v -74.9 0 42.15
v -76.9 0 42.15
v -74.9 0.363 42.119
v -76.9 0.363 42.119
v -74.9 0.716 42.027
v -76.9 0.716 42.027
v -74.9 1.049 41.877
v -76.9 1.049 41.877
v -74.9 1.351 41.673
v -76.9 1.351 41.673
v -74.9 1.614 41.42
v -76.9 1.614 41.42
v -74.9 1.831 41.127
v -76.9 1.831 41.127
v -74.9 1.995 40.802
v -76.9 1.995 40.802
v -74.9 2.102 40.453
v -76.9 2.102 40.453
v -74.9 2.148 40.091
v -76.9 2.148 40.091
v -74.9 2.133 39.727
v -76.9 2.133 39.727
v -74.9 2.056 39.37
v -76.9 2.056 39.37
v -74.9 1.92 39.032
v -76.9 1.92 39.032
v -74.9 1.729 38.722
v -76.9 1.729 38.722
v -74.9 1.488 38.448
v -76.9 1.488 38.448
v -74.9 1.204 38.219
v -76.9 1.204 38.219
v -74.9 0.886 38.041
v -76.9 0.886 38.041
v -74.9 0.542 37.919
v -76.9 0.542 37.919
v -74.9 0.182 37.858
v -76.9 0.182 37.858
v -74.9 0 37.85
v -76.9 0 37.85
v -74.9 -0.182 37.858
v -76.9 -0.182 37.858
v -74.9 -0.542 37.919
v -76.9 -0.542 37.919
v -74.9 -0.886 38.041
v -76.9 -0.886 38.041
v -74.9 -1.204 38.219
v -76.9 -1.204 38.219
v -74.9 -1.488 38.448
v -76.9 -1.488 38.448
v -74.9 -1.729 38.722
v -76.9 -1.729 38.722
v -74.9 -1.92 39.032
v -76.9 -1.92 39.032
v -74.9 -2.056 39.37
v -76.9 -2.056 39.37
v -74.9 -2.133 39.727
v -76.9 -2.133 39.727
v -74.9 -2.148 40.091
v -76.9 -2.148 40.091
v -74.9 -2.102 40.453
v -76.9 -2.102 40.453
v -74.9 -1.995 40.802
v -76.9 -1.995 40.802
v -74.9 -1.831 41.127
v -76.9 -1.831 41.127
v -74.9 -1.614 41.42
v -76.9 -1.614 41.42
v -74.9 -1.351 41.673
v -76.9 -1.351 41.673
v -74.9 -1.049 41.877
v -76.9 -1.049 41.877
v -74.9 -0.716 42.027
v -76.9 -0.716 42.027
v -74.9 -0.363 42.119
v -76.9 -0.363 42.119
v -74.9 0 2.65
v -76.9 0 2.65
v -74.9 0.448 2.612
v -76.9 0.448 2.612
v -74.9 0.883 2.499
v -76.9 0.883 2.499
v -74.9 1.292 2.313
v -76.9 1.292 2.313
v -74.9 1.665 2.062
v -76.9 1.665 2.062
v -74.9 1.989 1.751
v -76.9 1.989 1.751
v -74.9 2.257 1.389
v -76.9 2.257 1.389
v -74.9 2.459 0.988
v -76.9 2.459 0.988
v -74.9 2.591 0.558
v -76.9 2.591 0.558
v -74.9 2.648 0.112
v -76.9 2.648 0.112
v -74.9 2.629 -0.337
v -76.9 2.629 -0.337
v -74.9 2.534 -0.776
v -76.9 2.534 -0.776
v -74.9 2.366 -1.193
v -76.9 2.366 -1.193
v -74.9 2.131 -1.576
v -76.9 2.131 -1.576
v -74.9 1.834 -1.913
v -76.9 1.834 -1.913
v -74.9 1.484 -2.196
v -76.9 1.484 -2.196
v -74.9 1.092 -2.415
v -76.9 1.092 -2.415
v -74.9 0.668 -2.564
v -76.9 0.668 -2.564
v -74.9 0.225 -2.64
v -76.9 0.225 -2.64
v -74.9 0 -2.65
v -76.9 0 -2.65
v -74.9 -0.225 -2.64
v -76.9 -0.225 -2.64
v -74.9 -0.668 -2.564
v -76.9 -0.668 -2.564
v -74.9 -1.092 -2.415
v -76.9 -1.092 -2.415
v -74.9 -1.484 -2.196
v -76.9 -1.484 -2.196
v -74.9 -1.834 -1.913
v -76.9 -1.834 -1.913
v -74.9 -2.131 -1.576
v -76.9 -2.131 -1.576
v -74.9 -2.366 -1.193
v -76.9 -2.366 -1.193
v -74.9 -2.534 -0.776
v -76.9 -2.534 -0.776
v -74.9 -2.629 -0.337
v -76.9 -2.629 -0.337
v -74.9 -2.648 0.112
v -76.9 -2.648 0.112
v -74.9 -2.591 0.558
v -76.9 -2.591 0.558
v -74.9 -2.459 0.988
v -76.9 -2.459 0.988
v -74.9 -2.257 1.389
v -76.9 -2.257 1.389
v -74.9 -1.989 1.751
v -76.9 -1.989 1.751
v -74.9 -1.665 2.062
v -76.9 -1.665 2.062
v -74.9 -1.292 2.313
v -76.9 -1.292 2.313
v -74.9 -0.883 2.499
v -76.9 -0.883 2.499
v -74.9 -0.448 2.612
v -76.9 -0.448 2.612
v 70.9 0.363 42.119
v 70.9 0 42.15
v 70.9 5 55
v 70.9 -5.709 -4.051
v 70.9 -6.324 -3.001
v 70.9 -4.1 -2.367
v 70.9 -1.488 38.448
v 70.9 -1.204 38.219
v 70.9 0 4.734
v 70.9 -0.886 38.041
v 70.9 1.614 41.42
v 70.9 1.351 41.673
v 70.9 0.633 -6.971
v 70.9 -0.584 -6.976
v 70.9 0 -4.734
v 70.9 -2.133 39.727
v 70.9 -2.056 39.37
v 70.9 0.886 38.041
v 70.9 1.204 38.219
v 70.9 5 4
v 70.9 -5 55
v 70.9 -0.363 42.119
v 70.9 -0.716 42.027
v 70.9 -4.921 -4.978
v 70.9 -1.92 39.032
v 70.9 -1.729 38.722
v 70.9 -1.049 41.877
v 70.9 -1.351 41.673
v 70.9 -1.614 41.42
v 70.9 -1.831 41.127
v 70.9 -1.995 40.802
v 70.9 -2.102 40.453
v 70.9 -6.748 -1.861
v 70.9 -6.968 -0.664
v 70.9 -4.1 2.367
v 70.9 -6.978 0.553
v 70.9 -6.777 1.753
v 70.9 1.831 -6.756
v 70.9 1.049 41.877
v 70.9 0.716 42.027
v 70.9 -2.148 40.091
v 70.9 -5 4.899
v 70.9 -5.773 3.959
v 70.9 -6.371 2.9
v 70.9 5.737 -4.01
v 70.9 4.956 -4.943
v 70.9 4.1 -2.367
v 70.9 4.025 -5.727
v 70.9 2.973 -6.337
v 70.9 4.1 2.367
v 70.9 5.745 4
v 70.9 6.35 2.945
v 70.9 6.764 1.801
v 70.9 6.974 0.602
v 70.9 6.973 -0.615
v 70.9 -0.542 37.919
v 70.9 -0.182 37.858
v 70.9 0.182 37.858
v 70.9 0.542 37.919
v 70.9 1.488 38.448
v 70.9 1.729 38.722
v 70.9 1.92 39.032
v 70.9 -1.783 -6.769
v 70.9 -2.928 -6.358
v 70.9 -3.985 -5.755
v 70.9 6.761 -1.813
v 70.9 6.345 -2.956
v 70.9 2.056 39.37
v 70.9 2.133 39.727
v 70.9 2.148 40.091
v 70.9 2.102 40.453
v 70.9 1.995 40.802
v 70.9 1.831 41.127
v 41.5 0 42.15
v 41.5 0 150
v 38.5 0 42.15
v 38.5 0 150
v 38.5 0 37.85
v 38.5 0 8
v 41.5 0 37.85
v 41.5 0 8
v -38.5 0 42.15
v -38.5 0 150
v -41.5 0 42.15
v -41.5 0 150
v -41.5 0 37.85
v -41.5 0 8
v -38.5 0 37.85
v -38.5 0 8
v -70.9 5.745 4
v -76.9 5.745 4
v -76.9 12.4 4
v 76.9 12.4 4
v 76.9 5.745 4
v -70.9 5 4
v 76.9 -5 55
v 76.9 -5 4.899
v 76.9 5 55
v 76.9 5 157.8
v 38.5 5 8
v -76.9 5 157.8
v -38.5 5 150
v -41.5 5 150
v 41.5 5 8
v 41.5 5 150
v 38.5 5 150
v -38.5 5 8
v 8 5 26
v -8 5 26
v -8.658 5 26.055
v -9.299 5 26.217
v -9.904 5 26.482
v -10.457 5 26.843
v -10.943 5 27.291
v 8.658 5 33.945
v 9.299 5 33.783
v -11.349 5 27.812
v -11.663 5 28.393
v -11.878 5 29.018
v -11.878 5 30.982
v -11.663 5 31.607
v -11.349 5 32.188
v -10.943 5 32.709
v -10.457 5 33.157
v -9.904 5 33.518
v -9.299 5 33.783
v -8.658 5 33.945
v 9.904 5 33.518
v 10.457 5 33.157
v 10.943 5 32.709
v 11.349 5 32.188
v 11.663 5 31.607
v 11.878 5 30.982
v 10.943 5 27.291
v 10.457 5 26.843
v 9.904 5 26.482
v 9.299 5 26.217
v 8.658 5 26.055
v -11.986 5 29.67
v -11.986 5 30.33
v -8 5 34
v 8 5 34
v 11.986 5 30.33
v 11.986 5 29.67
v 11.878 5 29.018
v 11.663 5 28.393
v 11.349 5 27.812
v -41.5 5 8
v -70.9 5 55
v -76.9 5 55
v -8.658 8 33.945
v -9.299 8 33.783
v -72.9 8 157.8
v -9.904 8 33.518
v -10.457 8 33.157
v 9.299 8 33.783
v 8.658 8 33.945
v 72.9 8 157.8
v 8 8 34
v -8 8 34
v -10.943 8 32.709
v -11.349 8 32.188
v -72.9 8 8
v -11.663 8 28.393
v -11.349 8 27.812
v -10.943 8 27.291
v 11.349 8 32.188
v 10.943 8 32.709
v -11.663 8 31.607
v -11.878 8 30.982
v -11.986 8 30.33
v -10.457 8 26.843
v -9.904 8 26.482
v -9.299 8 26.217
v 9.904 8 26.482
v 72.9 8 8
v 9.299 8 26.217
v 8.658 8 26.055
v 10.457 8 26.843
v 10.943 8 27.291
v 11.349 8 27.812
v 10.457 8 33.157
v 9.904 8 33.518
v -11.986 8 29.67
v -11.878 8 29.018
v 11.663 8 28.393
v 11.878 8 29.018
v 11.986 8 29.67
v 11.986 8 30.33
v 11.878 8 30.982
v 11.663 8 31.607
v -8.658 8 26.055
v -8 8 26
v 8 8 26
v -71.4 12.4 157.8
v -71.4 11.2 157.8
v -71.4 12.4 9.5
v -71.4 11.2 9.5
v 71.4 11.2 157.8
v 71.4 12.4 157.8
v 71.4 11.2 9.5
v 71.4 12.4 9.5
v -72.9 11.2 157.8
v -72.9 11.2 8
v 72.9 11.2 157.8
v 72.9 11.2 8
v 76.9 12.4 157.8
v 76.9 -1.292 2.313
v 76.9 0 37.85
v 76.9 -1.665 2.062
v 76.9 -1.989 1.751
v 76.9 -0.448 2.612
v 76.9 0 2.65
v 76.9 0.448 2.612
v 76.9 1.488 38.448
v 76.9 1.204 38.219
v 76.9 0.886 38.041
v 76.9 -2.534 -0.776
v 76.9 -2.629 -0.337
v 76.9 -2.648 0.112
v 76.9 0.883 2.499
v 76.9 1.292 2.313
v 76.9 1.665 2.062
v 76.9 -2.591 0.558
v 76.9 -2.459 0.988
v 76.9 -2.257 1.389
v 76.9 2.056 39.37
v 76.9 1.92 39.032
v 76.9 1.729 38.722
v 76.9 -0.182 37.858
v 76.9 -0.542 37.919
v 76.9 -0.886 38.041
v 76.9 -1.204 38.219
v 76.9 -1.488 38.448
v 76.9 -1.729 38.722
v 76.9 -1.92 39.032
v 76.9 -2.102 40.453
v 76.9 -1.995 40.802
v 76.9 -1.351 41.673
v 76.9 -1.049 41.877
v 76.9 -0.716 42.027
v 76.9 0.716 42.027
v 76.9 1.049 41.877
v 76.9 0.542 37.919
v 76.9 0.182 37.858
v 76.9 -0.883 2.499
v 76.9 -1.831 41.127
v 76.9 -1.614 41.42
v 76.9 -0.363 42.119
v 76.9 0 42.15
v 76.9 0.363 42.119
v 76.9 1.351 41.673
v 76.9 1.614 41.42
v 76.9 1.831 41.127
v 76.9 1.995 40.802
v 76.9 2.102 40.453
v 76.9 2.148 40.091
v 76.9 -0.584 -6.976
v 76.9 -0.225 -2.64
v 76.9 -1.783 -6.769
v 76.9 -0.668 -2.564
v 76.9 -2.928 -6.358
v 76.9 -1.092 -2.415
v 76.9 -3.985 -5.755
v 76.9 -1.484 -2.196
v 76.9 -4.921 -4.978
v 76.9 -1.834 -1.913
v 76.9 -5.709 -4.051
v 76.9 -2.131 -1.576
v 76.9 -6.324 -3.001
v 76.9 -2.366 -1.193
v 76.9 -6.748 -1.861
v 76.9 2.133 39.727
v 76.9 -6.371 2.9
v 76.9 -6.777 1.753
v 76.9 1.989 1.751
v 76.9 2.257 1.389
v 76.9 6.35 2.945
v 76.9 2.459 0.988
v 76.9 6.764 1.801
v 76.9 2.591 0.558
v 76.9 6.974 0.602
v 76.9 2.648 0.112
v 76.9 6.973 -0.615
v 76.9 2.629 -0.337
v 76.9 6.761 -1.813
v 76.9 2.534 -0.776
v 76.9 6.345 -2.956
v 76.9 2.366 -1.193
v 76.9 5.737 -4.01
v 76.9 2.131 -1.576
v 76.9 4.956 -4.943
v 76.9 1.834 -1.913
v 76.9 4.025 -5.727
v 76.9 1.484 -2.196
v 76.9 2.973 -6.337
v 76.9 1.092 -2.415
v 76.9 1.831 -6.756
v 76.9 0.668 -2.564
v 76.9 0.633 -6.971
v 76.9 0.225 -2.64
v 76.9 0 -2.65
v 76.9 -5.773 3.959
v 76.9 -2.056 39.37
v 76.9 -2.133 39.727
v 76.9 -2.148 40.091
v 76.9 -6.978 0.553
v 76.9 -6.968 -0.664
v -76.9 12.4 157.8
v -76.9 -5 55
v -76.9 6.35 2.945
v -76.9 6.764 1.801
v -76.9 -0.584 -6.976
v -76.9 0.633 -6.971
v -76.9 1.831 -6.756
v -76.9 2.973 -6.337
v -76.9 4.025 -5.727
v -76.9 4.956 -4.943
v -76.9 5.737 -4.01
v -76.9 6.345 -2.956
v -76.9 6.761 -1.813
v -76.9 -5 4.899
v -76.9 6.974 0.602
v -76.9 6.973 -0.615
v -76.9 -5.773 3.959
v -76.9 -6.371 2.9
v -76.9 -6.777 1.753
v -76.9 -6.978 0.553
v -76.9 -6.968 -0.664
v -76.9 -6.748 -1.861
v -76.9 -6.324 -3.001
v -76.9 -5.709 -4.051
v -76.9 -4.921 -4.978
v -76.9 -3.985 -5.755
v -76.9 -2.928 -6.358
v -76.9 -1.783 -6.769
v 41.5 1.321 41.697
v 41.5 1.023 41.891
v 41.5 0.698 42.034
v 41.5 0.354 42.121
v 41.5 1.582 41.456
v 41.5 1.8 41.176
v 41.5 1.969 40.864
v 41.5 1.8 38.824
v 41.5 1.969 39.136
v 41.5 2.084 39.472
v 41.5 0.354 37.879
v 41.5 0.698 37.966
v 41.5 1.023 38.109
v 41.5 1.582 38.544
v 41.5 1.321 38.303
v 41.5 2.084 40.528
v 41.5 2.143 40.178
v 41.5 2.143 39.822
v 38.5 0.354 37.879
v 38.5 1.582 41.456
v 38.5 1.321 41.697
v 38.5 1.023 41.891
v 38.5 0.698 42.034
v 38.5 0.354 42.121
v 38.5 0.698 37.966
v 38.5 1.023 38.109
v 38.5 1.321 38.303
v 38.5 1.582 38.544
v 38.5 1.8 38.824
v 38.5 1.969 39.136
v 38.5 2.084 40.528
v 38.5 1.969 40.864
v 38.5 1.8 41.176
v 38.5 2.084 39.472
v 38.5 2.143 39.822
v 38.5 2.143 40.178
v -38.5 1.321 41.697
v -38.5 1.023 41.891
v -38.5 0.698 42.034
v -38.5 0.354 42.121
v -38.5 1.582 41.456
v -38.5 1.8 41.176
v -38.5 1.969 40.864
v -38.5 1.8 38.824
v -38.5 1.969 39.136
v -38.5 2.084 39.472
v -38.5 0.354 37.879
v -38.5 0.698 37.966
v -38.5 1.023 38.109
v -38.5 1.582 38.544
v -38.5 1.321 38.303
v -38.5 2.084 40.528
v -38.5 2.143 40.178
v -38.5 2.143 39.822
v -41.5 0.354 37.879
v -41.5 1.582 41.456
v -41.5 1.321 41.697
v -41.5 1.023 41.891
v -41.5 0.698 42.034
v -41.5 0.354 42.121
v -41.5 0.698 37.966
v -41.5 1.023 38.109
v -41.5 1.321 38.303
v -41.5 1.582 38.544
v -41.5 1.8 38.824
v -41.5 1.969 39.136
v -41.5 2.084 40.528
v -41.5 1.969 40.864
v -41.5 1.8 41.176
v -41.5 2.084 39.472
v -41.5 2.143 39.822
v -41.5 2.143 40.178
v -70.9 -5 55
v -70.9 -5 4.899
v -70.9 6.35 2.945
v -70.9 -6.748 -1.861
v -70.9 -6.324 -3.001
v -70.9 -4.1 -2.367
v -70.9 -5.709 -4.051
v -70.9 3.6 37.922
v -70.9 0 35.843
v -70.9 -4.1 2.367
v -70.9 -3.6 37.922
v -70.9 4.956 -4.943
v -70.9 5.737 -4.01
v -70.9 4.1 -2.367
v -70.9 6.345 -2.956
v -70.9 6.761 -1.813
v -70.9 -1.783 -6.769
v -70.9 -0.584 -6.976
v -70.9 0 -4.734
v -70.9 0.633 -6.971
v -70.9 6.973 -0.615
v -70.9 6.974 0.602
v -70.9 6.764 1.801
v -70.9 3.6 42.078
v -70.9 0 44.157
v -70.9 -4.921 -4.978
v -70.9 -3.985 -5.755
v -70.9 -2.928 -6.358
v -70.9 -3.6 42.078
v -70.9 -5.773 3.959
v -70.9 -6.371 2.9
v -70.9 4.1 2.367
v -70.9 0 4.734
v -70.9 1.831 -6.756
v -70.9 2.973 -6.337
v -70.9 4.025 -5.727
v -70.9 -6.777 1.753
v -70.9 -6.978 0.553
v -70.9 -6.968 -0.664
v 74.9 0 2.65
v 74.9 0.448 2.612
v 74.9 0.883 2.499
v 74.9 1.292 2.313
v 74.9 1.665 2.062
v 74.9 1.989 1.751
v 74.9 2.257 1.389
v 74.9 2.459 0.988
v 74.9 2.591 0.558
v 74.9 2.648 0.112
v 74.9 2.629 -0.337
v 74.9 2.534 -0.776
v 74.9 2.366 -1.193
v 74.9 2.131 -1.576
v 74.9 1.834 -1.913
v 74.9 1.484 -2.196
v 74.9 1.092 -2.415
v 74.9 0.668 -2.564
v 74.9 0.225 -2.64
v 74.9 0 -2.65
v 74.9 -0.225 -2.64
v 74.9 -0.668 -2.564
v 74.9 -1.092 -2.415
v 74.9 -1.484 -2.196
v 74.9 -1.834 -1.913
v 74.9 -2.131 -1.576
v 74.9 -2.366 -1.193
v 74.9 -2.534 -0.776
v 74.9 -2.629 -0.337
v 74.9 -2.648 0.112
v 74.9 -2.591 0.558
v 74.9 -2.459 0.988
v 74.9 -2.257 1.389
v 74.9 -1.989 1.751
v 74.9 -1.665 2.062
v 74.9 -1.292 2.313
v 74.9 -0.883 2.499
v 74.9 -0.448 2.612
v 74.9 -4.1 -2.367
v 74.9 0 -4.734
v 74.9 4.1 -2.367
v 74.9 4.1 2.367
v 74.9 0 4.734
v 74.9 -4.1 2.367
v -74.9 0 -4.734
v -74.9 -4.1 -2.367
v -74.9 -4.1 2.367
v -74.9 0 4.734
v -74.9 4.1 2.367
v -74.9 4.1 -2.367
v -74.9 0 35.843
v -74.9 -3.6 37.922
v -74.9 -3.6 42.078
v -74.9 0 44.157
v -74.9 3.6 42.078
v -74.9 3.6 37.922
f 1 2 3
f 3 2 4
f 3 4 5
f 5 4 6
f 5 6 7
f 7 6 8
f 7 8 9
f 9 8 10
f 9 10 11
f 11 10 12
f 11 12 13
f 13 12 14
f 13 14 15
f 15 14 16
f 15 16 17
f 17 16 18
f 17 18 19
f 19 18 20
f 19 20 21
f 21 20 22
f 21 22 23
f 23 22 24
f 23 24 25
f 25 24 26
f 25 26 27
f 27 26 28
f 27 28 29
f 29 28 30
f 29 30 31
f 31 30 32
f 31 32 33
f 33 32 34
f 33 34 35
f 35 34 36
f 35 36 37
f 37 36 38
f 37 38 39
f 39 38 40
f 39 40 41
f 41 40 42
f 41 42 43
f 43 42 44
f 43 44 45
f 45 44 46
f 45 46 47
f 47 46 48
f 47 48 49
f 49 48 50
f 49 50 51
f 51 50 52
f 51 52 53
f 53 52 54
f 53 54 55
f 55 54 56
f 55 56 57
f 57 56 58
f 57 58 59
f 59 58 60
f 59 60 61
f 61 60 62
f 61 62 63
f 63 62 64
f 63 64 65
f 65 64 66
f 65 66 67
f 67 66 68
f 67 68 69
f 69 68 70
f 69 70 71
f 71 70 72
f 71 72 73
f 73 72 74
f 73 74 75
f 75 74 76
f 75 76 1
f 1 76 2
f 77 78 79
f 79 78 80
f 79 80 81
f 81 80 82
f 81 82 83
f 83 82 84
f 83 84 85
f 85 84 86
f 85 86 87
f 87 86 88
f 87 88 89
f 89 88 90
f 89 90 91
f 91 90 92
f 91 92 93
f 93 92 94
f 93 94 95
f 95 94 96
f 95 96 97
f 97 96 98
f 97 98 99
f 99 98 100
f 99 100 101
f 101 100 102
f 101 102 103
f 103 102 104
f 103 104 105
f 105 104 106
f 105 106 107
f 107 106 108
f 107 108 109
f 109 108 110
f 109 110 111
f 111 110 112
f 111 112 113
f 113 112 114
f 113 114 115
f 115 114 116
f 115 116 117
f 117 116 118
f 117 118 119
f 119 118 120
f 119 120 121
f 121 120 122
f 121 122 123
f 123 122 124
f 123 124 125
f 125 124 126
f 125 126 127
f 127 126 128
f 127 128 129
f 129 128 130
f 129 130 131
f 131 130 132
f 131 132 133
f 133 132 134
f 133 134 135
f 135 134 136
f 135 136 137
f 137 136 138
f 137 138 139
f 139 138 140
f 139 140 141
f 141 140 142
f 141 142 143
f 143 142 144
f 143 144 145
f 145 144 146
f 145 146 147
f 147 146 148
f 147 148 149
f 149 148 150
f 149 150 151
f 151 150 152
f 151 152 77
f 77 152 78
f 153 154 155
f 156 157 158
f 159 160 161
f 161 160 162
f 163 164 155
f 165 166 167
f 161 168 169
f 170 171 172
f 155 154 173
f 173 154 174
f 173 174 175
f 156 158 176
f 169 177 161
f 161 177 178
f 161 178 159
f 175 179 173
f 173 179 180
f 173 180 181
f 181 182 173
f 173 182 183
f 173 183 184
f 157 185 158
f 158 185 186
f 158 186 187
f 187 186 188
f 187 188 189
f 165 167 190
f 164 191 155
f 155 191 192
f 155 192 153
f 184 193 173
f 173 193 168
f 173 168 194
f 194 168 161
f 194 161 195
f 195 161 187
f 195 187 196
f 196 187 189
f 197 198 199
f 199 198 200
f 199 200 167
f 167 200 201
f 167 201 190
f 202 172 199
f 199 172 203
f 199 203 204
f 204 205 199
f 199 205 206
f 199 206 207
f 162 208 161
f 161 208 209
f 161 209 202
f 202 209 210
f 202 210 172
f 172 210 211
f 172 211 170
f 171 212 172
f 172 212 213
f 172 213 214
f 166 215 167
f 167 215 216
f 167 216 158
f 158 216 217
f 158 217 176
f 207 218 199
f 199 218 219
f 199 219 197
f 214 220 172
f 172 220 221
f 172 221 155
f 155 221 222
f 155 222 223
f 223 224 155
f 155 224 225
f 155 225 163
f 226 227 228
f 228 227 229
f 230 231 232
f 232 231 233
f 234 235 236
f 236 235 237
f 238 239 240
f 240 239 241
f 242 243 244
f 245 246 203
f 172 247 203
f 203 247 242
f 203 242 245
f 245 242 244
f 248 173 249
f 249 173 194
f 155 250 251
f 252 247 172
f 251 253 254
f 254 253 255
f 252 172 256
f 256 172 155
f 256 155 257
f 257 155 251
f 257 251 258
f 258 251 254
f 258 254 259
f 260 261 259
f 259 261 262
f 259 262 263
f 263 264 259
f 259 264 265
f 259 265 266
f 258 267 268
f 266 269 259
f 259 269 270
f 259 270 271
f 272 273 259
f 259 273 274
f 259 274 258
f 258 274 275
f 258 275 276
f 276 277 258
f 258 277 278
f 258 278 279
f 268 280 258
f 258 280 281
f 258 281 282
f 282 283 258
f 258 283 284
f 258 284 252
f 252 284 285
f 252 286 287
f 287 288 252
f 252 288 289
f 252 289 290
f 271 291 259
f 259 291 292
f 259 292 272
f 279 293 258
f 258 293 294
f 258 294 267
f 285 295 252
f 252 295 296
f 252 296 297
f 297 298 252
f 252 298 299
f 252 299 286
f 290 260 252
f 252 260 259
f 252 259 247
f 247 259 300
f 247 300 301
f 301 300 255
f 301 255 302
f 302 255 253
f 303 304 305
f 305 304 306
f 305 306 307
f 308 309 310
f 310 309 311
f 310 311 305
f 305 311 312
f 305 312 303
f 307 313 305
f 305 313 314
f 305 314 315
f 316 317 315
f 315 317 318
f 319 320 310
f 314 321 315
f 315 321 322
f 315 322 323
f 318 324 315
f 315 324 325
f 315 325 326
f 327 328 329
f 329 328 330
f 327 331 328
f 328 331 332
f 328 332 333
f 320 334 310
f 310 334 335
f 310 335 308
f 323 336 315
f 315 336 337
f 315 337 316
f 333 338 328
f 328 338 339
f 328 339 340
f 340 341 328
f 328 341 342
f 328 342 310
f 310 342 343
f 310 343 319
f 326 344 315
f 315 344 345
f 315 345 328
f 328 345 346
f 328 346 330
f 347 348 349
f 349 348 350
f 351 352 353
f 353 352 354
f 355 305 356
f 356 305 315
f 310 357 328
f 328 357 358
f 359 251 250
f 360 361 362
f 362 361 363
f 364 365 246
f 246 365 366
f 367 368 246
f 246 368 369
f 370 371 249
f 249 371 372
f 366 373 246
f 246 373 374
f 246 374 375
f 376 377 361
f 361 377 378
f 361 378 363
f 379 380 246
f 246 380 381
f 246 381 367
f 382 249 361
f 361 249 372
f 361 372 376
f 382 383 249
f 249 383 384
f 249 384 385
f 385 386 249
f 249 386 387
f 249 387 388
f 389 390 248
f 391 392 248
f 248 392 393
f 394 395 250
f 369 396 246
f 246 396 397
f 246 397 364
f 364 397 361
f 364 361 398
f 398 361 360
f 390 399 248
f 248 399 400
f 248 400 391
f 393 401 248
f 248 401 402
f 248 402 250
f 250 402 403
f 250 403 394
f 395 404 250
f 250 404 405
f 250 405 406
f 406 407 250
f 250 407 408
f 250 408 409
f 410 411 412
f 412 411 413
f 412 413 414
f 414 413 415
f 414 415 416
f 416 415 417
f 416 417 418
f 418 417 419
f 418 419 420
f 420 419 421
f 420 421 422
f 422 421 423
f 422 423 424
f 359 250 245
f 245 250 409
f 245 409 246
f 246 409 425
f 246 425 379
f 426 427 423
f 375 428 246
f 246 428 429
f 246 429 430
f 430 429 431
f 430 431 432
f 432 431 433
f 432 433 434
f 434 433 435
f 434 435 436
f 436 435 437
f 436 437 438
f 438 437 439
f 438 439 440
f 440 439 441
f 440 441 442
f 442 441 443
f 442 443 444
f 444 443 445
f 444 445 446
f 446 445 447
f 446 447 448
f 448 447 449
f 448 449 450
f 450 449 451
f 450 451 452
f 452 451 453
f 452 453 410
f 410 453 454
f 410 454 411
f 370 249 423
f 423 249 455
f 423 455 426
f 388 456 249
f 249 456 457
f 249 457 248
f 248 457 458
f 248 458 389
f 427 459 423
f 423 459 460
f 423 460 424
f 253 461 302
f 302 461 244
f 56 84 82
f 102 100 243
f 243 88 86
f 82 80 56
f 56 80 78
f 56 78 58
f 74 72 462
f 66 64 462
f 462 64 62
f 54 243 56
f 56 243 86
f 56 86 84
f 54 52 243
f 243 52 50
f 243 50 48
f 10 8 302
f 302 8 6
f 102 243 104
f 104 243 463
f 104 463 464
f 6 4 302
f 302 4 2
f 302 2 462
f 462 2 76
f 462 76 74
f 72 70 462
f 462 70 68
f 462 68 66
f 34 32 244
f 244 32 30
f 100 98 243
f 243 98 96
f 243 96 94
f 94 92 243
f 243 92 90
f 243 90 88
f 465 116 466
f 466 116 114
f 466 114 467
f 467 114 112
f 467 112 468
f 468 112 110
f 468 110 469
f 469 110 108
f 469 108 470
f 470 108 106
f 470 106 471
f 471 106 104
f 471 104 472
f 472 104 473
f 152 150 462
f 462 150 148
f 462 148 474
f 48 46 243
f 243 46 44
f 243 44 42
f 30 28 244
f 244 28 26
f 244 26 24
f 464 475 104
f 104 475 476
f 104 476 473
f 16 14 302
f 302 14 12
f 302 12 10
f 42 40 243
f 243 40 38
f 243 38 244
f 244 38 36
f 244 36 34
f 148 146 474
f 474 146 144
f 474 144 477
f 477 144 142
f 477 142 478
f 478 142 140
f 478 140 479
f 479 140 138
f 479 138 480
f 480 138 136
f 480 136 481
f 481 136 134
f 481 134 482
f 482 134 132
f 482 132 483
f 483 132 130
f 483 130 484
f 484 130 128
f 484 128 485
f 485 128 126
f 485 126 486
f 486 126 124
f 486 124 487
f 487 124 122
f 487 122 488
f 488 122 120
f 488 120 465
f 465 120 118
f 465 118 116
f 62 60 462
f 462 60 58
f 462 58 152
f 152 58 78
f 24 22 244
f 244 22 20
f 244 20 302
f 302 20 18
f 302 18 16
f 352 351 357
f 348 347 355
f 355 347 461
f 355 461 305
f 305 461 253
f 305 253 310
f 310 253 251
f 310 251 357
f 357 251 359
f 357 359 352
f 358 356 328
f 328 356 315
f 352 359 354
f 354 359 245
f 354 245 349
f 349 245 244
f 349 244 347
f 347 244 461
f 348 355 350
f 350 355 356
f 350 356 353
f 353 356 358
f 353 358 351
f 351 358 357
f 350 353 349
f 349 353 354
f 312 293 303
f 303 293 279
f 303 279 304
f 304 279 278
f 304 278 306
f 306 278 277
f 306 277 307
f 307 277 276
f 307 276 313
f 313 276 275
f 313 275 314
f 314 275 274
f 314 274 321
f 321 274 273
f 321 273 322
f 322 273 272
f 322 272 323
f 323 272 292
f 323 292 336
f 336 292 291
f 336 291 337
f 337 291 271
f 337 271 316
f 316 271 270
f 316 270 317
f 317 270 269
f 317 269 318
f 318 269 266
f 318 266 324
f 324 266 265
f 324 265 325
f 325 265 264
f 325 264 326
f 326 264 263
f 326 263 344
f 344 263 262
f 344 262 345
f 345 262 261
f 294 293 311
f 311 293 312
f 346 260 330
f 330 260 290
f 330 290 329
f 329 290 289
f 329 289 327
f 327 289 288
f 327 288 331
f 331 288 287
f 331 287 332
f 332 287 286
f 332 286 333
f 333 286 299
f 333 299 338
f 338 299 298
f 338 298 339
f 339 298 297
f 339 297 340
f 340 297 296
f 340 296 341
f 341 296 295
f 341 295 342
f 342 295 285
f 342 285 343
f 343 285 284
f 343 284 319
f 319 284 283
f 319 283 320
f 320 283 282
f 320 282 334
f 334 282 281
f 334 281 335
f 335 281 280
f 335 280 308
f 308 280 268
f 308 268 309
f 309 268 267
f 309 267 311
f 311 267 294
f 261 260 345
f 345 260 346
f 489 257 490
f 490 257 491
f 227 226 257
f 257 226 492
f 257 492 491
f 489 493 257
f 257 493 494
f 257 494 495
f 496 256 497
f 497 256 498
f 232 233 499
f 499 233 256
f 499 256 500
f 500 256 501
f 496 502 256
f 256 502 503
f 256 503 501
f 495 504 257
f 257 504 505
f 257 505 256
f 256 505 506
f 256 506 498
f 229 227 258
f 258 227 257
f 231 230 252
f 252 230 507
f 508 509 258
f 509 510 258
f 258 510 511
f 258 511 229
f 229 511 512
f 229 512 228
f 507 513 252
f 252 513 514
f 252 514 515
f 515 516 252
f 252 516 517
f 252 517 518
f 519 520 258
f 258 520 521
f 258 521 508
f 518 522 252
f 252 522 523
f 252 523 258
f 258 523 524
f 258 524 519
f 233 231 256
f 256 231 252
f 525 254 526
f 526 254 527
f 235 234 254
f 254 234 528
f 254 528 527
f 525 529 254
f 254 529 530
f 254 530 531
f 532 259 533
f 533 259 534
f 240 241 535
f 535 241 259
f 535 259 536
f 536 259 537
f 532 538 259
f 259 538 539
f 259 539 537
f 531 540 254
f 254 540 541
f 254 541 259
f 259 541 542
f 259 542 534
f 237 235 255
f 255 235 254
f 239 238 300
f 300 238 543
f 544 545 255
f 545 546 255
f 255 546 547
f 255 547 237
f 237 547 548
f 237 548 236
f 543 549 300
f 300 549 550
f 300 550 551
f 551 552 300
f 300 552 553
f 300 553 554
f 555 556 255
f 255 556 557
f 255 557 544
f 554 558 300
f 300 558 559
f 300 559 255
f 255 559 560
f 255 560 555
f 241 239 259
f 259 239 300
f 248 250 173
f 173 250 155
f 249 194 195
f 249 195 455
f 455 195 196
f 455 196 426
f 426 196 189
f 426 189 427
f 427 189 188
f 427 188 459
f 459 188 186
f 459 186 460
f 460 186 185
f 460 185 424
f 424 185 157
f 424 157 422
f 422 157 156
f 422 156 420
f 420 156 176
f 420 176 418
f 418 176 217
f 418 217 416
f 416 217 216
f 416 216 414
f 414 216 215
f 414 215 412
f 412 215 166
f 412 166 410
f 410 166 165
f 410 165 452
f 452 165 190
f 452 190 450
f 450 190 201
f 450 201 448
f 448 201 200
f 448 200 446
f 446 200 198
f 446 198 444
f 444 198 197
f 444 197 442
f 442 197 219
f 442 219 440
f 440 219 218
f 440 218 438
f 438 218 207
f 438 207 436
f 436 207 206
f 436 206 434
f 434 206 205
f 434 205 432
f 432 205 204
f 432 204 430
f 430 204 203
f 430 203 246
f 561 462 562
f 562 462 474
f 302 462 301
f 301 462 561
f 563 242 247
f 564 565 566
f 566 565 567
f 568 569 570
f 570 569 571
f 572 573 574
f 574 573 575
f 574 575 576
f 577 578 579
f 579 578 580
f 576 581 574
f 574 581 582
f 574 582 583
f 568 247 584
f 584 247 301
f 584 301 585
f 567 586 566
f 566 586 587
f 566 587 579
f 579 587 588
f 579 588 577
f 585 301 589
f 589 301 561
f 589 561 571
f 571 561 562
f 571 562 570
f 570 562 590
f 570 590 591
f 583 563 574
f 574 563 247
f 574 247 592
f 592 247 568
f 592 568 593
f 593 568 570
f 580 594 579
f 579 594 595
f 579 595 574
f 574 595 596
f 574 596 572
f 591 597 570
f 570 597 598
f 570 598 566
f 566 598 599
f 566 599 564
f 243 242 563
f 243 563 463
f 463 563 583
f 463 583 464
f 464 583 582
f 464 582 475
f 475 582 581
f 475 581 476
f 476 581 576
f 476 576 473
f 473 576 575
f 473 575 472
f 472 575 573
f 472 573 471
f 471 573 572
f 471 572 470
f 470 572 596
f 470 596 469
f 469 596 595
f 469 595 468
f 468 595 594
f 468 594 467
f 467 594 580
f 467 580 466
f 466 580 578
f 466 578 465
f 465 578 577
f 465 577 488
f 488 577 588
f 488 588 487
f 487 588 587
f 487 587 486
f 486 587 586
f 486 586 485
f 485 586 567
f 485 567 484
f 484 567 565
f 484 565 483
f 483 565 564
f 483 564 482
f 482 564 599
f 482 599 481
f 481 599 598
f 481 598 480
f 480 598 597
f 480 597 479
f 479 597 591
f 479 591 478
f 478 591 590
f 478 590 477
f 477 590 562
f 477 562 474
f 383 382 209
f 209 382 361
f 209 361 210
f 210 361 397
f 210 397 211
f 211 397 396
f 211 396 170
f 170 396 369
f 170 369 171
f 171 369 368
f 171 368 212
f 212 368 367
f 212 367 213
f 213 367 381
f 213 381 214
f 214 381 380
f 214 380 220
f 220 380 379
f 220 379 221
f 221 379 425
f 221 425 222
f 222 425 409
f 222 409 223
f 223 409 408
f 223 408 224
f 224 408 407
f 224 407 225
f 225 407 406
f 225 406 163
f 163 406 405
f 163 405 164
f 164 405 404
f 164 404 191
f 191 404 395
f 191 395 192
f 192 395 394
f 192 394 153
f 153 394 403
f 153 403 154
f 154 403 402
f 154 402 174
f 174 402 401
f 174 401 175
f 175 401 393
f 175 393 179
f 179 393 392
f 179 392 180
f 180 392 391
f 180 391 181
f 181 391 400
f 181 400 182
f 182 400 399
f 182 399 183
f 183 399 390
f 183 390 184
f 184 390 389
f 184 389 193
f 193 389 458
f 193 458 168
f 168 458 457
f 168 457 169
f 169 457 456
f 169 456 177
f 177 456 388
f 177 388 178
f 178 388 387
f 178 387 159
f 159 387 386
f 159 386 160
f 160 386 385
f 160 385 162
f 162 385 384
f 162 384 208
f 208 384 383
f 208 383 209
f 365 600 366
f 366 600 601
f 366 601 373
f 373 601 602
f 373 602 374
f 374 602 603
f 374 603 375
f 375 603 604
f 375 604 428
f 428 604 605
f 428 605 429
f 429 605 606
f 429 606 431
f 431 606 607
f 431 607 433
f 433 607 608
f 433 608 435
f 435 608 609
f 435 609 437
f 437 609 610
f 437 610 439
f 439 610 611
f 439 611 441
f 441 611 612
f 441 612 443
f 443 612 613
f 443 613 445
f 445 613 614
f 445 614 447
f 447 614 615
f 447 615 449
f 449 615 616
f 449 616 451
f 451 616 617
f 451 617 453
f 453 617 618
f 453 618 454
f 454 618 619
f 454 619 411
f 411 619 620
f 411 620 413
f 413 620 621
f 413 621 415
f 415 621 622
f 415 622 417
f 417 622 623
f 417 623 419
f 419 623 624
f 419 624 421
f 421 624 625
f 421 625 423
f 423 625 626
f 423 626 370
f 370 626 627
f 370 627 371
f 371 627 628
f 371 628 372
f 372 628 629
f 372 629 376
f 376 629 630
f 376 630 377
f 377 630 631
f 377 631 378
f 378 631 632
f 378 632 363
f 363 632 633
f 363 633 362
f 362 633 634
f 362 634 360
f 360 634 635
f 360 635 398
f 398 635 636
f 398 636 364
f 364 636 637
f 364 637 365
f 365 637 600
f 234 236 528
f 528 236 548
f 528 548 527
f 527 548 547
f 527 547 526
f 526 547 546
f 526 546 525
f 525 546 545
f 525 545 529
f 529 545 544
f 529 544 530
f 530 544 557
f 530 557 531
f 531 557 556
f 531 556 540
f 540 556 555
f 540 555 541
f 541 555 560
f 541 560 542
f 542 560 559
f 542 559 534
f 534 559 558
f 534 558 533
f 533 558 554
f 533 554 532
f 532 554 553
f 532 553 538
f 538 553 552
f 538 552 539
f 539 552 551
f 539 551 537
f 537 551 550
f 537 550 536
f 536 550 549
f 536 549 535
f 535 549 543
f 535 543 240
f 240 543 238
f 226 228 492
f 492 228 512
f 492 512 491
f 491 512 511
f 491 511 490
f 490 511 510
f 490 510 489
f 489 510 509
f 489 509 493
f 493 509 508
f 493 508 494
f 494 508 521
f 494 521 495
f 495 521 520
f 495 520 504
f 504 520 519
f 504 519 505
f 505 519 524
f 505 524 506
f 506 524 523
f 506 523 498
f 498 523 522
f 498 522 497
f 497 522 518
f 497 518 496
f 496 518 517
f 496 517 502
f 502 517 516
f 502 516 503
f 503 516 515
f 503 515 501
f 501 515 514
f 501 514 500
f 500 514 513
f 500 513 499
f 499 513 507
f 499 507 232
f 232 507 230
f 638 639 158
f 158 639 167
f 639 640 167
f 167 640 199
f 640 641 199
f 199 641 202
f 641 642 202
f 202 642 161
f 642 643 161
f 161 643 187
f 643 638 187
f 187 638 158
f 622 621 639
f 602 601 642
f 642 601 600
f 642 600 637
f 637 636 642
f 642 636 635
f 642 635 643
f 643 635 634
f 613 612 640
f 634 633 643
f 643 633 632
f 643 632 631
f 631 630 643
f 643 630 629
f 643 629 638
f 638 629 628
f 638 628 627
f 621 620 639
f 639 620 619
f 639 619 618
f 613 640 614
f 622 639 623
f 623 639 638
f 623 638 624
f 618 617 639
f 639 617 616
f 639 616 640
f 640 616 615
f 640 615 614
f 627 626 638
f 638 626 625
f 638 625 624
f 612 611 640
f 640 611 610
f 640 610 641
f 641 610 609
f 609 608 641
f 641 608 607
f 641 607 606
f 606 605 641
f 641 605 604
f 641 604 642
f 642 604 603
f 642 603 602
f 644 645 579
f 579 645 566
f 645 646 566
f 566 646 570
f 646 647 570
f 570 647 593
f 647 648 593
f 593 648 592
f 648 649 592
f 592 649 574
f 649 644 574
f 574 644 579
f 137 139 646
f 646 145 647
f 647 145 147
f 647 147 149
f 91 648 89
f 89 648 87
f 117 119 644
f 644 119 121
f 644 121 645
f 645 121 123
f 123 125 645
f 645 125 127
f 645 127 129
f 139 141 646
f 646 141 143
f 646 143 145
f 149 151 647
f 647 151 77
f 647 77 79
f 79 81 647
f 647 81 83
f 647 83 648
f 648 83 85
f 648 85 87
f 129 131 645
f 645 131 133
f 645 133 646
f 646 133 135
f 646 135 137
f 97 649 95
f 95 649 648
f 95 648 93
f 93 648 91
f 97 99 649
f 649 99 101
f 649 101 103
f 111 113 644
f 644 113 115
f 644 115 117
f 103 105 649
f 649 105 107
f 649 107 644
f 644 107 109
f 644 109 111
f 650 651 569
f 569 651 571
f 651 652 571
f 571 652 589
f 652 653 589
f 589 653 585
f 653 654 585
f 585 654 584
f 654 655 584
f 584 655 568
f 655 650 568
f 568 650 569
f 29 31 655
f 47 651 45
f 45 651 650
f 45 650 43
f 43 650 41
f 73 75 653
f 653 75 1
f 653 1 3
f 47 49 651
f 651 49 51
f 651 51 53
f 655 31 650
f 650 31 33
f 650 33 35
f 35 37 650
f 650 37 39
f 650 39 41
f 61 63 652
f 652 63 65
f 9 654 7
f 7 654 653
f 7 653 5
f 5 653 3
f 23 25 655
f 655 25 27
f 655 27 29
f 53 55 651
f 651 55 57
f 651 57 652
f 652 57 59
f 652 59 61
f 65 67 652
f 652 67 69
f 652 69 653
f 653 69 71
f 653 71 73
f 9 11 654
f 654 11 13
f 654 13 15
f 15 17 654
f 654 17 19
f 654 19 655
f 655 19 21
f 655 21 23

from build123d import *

# Parameters (mm, degrees)
CROQUIS_PLACA_W                      = 153.8
CROQUIS_PLACA_H                      = 153.8
PLACA_DEPTH                          = 3
CROQUIS_BORDE_IZQ_W                  = 4
CROQUIS_BORDE_IZQ_H                  = 153.8
BORDE_IZQ_DEPTH                      = 3.2
CROQUIS_BORDE_DER_W                  = 4
CROQUIS_BORDE_DER_H                  = 153.8
BORDE_DER_DEPTH                      = 3.2
CROQUIS_BORDE_TRAS_W                 = 145.8
CROQUIS_BORDE_TRAS_H                 = 4
BORDE_TRAS_DEPTH                     = 3.2
CROQUIS_CEJA_IZQ_W                   = 5.5
CROQUIS_CEJA_IZQ_H                   = 153.8
CEJA_IZQ_DEPTH                       = 1.2
CROQUIS_CEJA_DER_W                   = 5.5
CROQUIS_CEJA_DER_H                   = 153.8
CEJA_DER_DEPTH                       = 1.2
CROQUIS_CEJA_TRAS_W                  = 148.3
CROQUIS_CEJA_TRAS_H                  = 5.5
CEJA_TRAS_DEPTH                      = 1.2
PASO_CABLE_DEPTH                     = 176.977867927
PASO_CABLE_DEPTH_BACK                = 176.977867927
CROQUIS_REFUERZOS_W                  = 3
CROQUIS_REFUERZOS_H                  = 142
REFUERZOS_DEPTH                      = 5
CROQUIS_COSTILLA_DER_W               = 55
CROQUIS_COSTILLA_DER_H               = 10
COSTILLA_DER_DEPTH                   = 6
CROQUIS_BUJE_DER_R                   = 7
BUJE_DER_DEPTH                       = 6
CROQUIS_COSTILLA_IZQ_W               = 55
CROQUIS_COSTILLA_IZQ_H               = 10
COSTILLA_IZQ_DEPTH                   = 6
BUJE_IZQ_START                       = -6
CROQUIS_BUJE_IZQ_R                   = 7
BUJE_IZQ_DEPTH                       = 6
AGUJEROS_PIVOTE_Y_BLOQUEO_DEPTH      = 176.977867927
AGUJEROS_PIVOTE_Y_BLOQUEO_DEPTH_BACK = 176.977867927
CROQUIS_AGUJEROS_EJE_R               = 2.65
CROQUIS_AGUJEROS_EJE_R_2             = 2.15
TUERCA_M5_DER_DEPTH                  = 4
TUERCAS_M5_M4_IZQ_DEPTH              = 4


with BuildPart() as part:
    # Croquis_placa → Placa (new body)
    with BuildSketch(Plane(origin=(0, 5, 0), x_dir=(1, 0, 0), z_dir=(0, 1, 0))):
        with Locations((0, -80.9)):
            Rectangle(CROQUIS_PLACA_W, CROQUIS_PLACA_H)
    extrude(amount=PLACA_DEPTH)

    # Croquis_Borde_izq → Borde_izq (add)
    with BuildSketch(Plane(origin=(0, 8, 0), x_dir=(1, 0, 0), z_dir=(0, 1, 0))):
        with Locations((-74.9, -80.9)):
            Rectangle(CROQUIS_BORDE_IZQ_W, CROQUIS_BORDE_IZQ_H)
    extrude(amount=BORDE_IZQ_DEPTH)

    # Croquis_Borde_der → Borde_der (add)
    with BuildSketch(Plane(origin=(0, 8, 0), x_dir=(1, 0, 0), z_dir=(0, 1, 0))):
        with Locations((74.9, -80.9)):
            Rectangle(CROQUIS_BORDE_DER_W, CROQUIS_BORDE_DER_H)
    extrude(amount=BORDE_DER_DEPTH)

    # Croquis_Borde_tras → Borde_tras (add)
    with BuildSketch(Plane(origin=(0, 8, 0), x_dir=(1, 0, 0), z_dir=(0, 1, 0))):
        with Locations((0, -6)):
            Rectangle(CROQUIS_BORDE_TRAS_W, CROQUIS_BORDE_TRAS_H)
    extrude(amount=BORDE_TRAS_DEPTH)

    # Croquis_Ceja_izq → Ceja_izq (add)
    with BuildSketch(Plane(origin=(0, 11.2, 0), x_dir=(1, 0, 0), z_dir=(0, 1, 0))):
        with Locations((-74.15, -80.9)):
            Rectangle(CROQUIS_CEJA_IZQ_W, CROQUIS_CEJA_IZQ_H)
    extrude(amount=CEJA_IZQ_DEPTH)

    # Croquis_Ceja_der → Ceja_der (add)
    with BuildSketch(Plane(origin=(0, 11.2, 0), x_dir=(1, 0, 0), z_dir=(0, 1, 0))):
        with Locations((74.15, -80.9)):
            Rectangle(CROQUIS_CEJA_DER_W, CROQUIS_CEJA_DER_H)
    extrude(amount=CEJA_DER_DEPTH)

    # Croquis_Ceja_tras → Ceja_tras (add)
    with BuildSketch(Plane(origin=(0, 11.2, 0), x_dir=(1, 0, 0), z_dir=(0, 1, 0))):
        with Locations((0, -6.75)):
            Rectangle(CROQUIS_CEJA_TRAS_W, CROQUIS_CEJA_TRAS_H)
    extrude(amount=CEJA_TRAS_DEPTH)

    # Croquis_cable → Paso_cable (cut, two sides: drawn at the far end of the back side and taken through both)
    with BuildSketch(Plane(origin=(0, 0, 0), x_dir=(1, 0, 0), z_dir=(0, 1, 0)).offset(-PASO_CABLE_DEPTH_BACK)):
        with BuildLine():
            Line((-8, -26), (8, -26))
            ThreePointArc((8, -26), (12, -30), (8, -34))
            Line((8, -34), (-8, -34))
            ThreePointArc((-8, -34), (-12, -30), (-8, -26))
        make_face()
    extrude(amount=PASO_CABLE_DEPTH + PASO_CABLE_DEPTH_BACK, mode=Mode.SUBTRACT)

    # Croquis_refuerzos → Refuerzos (add)
    with BuildSketch(Plane(origin=(0, 5, 0), x_dir=(1, 0, 0), z_dir=(0, 1, 0))):
        with Locations((-40, -79)):
            Rectangle(CROQUIS_REFUERZOS_W, CROQUIS_REFUERZOS_H)
        with Locations((40, -79)):
            Rectangle(CROQUIS_REFUERZOS_W, CROQUIS_REFUERZOS_H)
    extrude(amount=-REFUERZOS_DEPTH)

    # Croquis_costilla_der → Costilla_der (add)
    with BuildSketch(Plane(origin=(70.9, 0, 0), x_dir=(0, 0, -1), z_dir=(1, 0, 0))):
        with Locations((-27.5, 0)):
            Rectangle(CROQUIS_COSTILLA_DER_W, CROQUIS_COSTILLA_DER_H)
    extrude(amount=COSTILLA_DER_DEPTH)

    # Croquis_buje_der → Buje_der (add)
    with BuildSketch(Plane(origin=(70.9, 0, 0), x_dir=(0, 0, -1), z_dir=(1, 0, 0))):
        Circle(CROQUIS_BUJE_DER_R)
    extrude(amount=BUJE_DER_DEPTH)

    # Croquis_costilla_izq → Costilla_izq (add)
    with BuildSketch(Plane(origin=(-70.9, 0, 0), x_dir=(0, 0, -1), z_dir=(1, 0, 0))):
        with Locations((-27.5, 0)):
            Rectangle(CROQUIS_COSTILLA_IZQ_W, CROQUIS_COSTILLA_IZQ_H)
    extrude(amount=-COSTILLA_IZQ_DEPTH)

    # Croquis_buje_izq → Buje_izq (add)
    with BuildSketch(Plane(origin=(-70.9, 0, 0), x_dir=(0, 0, -1), z_dir=(1, 0, 0)).offset(BUJE_IZQ_START)):
        Circle(CROQUIS_BUJE_IZQ_R)
    extrude(amount=BUJE_IZQ_DEPTH)

    # Croquis_agujeros_eje → Agujeros_pivote_y_bloqueo (cut, two sides: drawn at the far end of the back side and taken through both)
    with BuildSketch(Plane(origin=(0, 0, 0), x_dir=(0, 0, -1), z_dir=(1, 0, 0)).offset(-AGUJEROS_PIVOTE_Y_BLOQUEO_DEPTH_BACK)):
        with Locations(Location((0, 0, 0), (0, 0, 180))):
            Circle(CROQUIS_AGUJEROS_EJE_R)
        with Locations(Location((-40, 0, 0), (0, 0, 180))):
            Circle(CROQUIS_AGUJEROS_EJE_R_2)
    extrude(amount=AGUJEROS_PIVOTE_Y_BLOQUEO_DEPTH + AGUJEROS_PIVOTE_Y_BLOQUEO_DEPTH_BACK, mode=Mode.SUBTRACT)

    # Croquis_tuerca_M5_der → Tuerca_M5_der (cut)
    with BuildSketch(Plane(origin=(70.9, 0, 0), x_dir=(0, 0, -1), z_dir=(1, 0, 0))):
        Polygon((4.734272207, 0), (2.367136104, 4.1), (-2.367136104, 4.1), (-4.734272207, 0), (-2.367136104, -4.1), (2.367136104, -4.1), align=None)
    extrude(amount=TUERCA_M5_DER_DEPTH, mode=Mode.SUBTRACT)

    # Croquis_tuercas_izq → Tuercas_M5_M4_izq (cut)
    with BuildSketch(Plane(origin=(-70.9, 0, 0), x_dir=(0, 0, -1), z_dir=(1, 0, 0))):
        Polygon((4.734272207, 0), (2.367136104, 4.1), (-2.367136104, 4.1), (-4.734272207, 0), (-2.367136104, -4.1), (2.367136104, -4.1), align=None)
        Polygon((-35.843078062, 0), (-37.921539031, 3.6), (-42.078460969, 3.6), (-44.156921938, 0), (-42.078460969, -3.6), (-37.921539031, -3.6), align=None)
    extrude(amount=-TUERCAS_M5_M4_IZQ_DEPTH, mode=Mode.SUBTRACT)


solid = part.part
